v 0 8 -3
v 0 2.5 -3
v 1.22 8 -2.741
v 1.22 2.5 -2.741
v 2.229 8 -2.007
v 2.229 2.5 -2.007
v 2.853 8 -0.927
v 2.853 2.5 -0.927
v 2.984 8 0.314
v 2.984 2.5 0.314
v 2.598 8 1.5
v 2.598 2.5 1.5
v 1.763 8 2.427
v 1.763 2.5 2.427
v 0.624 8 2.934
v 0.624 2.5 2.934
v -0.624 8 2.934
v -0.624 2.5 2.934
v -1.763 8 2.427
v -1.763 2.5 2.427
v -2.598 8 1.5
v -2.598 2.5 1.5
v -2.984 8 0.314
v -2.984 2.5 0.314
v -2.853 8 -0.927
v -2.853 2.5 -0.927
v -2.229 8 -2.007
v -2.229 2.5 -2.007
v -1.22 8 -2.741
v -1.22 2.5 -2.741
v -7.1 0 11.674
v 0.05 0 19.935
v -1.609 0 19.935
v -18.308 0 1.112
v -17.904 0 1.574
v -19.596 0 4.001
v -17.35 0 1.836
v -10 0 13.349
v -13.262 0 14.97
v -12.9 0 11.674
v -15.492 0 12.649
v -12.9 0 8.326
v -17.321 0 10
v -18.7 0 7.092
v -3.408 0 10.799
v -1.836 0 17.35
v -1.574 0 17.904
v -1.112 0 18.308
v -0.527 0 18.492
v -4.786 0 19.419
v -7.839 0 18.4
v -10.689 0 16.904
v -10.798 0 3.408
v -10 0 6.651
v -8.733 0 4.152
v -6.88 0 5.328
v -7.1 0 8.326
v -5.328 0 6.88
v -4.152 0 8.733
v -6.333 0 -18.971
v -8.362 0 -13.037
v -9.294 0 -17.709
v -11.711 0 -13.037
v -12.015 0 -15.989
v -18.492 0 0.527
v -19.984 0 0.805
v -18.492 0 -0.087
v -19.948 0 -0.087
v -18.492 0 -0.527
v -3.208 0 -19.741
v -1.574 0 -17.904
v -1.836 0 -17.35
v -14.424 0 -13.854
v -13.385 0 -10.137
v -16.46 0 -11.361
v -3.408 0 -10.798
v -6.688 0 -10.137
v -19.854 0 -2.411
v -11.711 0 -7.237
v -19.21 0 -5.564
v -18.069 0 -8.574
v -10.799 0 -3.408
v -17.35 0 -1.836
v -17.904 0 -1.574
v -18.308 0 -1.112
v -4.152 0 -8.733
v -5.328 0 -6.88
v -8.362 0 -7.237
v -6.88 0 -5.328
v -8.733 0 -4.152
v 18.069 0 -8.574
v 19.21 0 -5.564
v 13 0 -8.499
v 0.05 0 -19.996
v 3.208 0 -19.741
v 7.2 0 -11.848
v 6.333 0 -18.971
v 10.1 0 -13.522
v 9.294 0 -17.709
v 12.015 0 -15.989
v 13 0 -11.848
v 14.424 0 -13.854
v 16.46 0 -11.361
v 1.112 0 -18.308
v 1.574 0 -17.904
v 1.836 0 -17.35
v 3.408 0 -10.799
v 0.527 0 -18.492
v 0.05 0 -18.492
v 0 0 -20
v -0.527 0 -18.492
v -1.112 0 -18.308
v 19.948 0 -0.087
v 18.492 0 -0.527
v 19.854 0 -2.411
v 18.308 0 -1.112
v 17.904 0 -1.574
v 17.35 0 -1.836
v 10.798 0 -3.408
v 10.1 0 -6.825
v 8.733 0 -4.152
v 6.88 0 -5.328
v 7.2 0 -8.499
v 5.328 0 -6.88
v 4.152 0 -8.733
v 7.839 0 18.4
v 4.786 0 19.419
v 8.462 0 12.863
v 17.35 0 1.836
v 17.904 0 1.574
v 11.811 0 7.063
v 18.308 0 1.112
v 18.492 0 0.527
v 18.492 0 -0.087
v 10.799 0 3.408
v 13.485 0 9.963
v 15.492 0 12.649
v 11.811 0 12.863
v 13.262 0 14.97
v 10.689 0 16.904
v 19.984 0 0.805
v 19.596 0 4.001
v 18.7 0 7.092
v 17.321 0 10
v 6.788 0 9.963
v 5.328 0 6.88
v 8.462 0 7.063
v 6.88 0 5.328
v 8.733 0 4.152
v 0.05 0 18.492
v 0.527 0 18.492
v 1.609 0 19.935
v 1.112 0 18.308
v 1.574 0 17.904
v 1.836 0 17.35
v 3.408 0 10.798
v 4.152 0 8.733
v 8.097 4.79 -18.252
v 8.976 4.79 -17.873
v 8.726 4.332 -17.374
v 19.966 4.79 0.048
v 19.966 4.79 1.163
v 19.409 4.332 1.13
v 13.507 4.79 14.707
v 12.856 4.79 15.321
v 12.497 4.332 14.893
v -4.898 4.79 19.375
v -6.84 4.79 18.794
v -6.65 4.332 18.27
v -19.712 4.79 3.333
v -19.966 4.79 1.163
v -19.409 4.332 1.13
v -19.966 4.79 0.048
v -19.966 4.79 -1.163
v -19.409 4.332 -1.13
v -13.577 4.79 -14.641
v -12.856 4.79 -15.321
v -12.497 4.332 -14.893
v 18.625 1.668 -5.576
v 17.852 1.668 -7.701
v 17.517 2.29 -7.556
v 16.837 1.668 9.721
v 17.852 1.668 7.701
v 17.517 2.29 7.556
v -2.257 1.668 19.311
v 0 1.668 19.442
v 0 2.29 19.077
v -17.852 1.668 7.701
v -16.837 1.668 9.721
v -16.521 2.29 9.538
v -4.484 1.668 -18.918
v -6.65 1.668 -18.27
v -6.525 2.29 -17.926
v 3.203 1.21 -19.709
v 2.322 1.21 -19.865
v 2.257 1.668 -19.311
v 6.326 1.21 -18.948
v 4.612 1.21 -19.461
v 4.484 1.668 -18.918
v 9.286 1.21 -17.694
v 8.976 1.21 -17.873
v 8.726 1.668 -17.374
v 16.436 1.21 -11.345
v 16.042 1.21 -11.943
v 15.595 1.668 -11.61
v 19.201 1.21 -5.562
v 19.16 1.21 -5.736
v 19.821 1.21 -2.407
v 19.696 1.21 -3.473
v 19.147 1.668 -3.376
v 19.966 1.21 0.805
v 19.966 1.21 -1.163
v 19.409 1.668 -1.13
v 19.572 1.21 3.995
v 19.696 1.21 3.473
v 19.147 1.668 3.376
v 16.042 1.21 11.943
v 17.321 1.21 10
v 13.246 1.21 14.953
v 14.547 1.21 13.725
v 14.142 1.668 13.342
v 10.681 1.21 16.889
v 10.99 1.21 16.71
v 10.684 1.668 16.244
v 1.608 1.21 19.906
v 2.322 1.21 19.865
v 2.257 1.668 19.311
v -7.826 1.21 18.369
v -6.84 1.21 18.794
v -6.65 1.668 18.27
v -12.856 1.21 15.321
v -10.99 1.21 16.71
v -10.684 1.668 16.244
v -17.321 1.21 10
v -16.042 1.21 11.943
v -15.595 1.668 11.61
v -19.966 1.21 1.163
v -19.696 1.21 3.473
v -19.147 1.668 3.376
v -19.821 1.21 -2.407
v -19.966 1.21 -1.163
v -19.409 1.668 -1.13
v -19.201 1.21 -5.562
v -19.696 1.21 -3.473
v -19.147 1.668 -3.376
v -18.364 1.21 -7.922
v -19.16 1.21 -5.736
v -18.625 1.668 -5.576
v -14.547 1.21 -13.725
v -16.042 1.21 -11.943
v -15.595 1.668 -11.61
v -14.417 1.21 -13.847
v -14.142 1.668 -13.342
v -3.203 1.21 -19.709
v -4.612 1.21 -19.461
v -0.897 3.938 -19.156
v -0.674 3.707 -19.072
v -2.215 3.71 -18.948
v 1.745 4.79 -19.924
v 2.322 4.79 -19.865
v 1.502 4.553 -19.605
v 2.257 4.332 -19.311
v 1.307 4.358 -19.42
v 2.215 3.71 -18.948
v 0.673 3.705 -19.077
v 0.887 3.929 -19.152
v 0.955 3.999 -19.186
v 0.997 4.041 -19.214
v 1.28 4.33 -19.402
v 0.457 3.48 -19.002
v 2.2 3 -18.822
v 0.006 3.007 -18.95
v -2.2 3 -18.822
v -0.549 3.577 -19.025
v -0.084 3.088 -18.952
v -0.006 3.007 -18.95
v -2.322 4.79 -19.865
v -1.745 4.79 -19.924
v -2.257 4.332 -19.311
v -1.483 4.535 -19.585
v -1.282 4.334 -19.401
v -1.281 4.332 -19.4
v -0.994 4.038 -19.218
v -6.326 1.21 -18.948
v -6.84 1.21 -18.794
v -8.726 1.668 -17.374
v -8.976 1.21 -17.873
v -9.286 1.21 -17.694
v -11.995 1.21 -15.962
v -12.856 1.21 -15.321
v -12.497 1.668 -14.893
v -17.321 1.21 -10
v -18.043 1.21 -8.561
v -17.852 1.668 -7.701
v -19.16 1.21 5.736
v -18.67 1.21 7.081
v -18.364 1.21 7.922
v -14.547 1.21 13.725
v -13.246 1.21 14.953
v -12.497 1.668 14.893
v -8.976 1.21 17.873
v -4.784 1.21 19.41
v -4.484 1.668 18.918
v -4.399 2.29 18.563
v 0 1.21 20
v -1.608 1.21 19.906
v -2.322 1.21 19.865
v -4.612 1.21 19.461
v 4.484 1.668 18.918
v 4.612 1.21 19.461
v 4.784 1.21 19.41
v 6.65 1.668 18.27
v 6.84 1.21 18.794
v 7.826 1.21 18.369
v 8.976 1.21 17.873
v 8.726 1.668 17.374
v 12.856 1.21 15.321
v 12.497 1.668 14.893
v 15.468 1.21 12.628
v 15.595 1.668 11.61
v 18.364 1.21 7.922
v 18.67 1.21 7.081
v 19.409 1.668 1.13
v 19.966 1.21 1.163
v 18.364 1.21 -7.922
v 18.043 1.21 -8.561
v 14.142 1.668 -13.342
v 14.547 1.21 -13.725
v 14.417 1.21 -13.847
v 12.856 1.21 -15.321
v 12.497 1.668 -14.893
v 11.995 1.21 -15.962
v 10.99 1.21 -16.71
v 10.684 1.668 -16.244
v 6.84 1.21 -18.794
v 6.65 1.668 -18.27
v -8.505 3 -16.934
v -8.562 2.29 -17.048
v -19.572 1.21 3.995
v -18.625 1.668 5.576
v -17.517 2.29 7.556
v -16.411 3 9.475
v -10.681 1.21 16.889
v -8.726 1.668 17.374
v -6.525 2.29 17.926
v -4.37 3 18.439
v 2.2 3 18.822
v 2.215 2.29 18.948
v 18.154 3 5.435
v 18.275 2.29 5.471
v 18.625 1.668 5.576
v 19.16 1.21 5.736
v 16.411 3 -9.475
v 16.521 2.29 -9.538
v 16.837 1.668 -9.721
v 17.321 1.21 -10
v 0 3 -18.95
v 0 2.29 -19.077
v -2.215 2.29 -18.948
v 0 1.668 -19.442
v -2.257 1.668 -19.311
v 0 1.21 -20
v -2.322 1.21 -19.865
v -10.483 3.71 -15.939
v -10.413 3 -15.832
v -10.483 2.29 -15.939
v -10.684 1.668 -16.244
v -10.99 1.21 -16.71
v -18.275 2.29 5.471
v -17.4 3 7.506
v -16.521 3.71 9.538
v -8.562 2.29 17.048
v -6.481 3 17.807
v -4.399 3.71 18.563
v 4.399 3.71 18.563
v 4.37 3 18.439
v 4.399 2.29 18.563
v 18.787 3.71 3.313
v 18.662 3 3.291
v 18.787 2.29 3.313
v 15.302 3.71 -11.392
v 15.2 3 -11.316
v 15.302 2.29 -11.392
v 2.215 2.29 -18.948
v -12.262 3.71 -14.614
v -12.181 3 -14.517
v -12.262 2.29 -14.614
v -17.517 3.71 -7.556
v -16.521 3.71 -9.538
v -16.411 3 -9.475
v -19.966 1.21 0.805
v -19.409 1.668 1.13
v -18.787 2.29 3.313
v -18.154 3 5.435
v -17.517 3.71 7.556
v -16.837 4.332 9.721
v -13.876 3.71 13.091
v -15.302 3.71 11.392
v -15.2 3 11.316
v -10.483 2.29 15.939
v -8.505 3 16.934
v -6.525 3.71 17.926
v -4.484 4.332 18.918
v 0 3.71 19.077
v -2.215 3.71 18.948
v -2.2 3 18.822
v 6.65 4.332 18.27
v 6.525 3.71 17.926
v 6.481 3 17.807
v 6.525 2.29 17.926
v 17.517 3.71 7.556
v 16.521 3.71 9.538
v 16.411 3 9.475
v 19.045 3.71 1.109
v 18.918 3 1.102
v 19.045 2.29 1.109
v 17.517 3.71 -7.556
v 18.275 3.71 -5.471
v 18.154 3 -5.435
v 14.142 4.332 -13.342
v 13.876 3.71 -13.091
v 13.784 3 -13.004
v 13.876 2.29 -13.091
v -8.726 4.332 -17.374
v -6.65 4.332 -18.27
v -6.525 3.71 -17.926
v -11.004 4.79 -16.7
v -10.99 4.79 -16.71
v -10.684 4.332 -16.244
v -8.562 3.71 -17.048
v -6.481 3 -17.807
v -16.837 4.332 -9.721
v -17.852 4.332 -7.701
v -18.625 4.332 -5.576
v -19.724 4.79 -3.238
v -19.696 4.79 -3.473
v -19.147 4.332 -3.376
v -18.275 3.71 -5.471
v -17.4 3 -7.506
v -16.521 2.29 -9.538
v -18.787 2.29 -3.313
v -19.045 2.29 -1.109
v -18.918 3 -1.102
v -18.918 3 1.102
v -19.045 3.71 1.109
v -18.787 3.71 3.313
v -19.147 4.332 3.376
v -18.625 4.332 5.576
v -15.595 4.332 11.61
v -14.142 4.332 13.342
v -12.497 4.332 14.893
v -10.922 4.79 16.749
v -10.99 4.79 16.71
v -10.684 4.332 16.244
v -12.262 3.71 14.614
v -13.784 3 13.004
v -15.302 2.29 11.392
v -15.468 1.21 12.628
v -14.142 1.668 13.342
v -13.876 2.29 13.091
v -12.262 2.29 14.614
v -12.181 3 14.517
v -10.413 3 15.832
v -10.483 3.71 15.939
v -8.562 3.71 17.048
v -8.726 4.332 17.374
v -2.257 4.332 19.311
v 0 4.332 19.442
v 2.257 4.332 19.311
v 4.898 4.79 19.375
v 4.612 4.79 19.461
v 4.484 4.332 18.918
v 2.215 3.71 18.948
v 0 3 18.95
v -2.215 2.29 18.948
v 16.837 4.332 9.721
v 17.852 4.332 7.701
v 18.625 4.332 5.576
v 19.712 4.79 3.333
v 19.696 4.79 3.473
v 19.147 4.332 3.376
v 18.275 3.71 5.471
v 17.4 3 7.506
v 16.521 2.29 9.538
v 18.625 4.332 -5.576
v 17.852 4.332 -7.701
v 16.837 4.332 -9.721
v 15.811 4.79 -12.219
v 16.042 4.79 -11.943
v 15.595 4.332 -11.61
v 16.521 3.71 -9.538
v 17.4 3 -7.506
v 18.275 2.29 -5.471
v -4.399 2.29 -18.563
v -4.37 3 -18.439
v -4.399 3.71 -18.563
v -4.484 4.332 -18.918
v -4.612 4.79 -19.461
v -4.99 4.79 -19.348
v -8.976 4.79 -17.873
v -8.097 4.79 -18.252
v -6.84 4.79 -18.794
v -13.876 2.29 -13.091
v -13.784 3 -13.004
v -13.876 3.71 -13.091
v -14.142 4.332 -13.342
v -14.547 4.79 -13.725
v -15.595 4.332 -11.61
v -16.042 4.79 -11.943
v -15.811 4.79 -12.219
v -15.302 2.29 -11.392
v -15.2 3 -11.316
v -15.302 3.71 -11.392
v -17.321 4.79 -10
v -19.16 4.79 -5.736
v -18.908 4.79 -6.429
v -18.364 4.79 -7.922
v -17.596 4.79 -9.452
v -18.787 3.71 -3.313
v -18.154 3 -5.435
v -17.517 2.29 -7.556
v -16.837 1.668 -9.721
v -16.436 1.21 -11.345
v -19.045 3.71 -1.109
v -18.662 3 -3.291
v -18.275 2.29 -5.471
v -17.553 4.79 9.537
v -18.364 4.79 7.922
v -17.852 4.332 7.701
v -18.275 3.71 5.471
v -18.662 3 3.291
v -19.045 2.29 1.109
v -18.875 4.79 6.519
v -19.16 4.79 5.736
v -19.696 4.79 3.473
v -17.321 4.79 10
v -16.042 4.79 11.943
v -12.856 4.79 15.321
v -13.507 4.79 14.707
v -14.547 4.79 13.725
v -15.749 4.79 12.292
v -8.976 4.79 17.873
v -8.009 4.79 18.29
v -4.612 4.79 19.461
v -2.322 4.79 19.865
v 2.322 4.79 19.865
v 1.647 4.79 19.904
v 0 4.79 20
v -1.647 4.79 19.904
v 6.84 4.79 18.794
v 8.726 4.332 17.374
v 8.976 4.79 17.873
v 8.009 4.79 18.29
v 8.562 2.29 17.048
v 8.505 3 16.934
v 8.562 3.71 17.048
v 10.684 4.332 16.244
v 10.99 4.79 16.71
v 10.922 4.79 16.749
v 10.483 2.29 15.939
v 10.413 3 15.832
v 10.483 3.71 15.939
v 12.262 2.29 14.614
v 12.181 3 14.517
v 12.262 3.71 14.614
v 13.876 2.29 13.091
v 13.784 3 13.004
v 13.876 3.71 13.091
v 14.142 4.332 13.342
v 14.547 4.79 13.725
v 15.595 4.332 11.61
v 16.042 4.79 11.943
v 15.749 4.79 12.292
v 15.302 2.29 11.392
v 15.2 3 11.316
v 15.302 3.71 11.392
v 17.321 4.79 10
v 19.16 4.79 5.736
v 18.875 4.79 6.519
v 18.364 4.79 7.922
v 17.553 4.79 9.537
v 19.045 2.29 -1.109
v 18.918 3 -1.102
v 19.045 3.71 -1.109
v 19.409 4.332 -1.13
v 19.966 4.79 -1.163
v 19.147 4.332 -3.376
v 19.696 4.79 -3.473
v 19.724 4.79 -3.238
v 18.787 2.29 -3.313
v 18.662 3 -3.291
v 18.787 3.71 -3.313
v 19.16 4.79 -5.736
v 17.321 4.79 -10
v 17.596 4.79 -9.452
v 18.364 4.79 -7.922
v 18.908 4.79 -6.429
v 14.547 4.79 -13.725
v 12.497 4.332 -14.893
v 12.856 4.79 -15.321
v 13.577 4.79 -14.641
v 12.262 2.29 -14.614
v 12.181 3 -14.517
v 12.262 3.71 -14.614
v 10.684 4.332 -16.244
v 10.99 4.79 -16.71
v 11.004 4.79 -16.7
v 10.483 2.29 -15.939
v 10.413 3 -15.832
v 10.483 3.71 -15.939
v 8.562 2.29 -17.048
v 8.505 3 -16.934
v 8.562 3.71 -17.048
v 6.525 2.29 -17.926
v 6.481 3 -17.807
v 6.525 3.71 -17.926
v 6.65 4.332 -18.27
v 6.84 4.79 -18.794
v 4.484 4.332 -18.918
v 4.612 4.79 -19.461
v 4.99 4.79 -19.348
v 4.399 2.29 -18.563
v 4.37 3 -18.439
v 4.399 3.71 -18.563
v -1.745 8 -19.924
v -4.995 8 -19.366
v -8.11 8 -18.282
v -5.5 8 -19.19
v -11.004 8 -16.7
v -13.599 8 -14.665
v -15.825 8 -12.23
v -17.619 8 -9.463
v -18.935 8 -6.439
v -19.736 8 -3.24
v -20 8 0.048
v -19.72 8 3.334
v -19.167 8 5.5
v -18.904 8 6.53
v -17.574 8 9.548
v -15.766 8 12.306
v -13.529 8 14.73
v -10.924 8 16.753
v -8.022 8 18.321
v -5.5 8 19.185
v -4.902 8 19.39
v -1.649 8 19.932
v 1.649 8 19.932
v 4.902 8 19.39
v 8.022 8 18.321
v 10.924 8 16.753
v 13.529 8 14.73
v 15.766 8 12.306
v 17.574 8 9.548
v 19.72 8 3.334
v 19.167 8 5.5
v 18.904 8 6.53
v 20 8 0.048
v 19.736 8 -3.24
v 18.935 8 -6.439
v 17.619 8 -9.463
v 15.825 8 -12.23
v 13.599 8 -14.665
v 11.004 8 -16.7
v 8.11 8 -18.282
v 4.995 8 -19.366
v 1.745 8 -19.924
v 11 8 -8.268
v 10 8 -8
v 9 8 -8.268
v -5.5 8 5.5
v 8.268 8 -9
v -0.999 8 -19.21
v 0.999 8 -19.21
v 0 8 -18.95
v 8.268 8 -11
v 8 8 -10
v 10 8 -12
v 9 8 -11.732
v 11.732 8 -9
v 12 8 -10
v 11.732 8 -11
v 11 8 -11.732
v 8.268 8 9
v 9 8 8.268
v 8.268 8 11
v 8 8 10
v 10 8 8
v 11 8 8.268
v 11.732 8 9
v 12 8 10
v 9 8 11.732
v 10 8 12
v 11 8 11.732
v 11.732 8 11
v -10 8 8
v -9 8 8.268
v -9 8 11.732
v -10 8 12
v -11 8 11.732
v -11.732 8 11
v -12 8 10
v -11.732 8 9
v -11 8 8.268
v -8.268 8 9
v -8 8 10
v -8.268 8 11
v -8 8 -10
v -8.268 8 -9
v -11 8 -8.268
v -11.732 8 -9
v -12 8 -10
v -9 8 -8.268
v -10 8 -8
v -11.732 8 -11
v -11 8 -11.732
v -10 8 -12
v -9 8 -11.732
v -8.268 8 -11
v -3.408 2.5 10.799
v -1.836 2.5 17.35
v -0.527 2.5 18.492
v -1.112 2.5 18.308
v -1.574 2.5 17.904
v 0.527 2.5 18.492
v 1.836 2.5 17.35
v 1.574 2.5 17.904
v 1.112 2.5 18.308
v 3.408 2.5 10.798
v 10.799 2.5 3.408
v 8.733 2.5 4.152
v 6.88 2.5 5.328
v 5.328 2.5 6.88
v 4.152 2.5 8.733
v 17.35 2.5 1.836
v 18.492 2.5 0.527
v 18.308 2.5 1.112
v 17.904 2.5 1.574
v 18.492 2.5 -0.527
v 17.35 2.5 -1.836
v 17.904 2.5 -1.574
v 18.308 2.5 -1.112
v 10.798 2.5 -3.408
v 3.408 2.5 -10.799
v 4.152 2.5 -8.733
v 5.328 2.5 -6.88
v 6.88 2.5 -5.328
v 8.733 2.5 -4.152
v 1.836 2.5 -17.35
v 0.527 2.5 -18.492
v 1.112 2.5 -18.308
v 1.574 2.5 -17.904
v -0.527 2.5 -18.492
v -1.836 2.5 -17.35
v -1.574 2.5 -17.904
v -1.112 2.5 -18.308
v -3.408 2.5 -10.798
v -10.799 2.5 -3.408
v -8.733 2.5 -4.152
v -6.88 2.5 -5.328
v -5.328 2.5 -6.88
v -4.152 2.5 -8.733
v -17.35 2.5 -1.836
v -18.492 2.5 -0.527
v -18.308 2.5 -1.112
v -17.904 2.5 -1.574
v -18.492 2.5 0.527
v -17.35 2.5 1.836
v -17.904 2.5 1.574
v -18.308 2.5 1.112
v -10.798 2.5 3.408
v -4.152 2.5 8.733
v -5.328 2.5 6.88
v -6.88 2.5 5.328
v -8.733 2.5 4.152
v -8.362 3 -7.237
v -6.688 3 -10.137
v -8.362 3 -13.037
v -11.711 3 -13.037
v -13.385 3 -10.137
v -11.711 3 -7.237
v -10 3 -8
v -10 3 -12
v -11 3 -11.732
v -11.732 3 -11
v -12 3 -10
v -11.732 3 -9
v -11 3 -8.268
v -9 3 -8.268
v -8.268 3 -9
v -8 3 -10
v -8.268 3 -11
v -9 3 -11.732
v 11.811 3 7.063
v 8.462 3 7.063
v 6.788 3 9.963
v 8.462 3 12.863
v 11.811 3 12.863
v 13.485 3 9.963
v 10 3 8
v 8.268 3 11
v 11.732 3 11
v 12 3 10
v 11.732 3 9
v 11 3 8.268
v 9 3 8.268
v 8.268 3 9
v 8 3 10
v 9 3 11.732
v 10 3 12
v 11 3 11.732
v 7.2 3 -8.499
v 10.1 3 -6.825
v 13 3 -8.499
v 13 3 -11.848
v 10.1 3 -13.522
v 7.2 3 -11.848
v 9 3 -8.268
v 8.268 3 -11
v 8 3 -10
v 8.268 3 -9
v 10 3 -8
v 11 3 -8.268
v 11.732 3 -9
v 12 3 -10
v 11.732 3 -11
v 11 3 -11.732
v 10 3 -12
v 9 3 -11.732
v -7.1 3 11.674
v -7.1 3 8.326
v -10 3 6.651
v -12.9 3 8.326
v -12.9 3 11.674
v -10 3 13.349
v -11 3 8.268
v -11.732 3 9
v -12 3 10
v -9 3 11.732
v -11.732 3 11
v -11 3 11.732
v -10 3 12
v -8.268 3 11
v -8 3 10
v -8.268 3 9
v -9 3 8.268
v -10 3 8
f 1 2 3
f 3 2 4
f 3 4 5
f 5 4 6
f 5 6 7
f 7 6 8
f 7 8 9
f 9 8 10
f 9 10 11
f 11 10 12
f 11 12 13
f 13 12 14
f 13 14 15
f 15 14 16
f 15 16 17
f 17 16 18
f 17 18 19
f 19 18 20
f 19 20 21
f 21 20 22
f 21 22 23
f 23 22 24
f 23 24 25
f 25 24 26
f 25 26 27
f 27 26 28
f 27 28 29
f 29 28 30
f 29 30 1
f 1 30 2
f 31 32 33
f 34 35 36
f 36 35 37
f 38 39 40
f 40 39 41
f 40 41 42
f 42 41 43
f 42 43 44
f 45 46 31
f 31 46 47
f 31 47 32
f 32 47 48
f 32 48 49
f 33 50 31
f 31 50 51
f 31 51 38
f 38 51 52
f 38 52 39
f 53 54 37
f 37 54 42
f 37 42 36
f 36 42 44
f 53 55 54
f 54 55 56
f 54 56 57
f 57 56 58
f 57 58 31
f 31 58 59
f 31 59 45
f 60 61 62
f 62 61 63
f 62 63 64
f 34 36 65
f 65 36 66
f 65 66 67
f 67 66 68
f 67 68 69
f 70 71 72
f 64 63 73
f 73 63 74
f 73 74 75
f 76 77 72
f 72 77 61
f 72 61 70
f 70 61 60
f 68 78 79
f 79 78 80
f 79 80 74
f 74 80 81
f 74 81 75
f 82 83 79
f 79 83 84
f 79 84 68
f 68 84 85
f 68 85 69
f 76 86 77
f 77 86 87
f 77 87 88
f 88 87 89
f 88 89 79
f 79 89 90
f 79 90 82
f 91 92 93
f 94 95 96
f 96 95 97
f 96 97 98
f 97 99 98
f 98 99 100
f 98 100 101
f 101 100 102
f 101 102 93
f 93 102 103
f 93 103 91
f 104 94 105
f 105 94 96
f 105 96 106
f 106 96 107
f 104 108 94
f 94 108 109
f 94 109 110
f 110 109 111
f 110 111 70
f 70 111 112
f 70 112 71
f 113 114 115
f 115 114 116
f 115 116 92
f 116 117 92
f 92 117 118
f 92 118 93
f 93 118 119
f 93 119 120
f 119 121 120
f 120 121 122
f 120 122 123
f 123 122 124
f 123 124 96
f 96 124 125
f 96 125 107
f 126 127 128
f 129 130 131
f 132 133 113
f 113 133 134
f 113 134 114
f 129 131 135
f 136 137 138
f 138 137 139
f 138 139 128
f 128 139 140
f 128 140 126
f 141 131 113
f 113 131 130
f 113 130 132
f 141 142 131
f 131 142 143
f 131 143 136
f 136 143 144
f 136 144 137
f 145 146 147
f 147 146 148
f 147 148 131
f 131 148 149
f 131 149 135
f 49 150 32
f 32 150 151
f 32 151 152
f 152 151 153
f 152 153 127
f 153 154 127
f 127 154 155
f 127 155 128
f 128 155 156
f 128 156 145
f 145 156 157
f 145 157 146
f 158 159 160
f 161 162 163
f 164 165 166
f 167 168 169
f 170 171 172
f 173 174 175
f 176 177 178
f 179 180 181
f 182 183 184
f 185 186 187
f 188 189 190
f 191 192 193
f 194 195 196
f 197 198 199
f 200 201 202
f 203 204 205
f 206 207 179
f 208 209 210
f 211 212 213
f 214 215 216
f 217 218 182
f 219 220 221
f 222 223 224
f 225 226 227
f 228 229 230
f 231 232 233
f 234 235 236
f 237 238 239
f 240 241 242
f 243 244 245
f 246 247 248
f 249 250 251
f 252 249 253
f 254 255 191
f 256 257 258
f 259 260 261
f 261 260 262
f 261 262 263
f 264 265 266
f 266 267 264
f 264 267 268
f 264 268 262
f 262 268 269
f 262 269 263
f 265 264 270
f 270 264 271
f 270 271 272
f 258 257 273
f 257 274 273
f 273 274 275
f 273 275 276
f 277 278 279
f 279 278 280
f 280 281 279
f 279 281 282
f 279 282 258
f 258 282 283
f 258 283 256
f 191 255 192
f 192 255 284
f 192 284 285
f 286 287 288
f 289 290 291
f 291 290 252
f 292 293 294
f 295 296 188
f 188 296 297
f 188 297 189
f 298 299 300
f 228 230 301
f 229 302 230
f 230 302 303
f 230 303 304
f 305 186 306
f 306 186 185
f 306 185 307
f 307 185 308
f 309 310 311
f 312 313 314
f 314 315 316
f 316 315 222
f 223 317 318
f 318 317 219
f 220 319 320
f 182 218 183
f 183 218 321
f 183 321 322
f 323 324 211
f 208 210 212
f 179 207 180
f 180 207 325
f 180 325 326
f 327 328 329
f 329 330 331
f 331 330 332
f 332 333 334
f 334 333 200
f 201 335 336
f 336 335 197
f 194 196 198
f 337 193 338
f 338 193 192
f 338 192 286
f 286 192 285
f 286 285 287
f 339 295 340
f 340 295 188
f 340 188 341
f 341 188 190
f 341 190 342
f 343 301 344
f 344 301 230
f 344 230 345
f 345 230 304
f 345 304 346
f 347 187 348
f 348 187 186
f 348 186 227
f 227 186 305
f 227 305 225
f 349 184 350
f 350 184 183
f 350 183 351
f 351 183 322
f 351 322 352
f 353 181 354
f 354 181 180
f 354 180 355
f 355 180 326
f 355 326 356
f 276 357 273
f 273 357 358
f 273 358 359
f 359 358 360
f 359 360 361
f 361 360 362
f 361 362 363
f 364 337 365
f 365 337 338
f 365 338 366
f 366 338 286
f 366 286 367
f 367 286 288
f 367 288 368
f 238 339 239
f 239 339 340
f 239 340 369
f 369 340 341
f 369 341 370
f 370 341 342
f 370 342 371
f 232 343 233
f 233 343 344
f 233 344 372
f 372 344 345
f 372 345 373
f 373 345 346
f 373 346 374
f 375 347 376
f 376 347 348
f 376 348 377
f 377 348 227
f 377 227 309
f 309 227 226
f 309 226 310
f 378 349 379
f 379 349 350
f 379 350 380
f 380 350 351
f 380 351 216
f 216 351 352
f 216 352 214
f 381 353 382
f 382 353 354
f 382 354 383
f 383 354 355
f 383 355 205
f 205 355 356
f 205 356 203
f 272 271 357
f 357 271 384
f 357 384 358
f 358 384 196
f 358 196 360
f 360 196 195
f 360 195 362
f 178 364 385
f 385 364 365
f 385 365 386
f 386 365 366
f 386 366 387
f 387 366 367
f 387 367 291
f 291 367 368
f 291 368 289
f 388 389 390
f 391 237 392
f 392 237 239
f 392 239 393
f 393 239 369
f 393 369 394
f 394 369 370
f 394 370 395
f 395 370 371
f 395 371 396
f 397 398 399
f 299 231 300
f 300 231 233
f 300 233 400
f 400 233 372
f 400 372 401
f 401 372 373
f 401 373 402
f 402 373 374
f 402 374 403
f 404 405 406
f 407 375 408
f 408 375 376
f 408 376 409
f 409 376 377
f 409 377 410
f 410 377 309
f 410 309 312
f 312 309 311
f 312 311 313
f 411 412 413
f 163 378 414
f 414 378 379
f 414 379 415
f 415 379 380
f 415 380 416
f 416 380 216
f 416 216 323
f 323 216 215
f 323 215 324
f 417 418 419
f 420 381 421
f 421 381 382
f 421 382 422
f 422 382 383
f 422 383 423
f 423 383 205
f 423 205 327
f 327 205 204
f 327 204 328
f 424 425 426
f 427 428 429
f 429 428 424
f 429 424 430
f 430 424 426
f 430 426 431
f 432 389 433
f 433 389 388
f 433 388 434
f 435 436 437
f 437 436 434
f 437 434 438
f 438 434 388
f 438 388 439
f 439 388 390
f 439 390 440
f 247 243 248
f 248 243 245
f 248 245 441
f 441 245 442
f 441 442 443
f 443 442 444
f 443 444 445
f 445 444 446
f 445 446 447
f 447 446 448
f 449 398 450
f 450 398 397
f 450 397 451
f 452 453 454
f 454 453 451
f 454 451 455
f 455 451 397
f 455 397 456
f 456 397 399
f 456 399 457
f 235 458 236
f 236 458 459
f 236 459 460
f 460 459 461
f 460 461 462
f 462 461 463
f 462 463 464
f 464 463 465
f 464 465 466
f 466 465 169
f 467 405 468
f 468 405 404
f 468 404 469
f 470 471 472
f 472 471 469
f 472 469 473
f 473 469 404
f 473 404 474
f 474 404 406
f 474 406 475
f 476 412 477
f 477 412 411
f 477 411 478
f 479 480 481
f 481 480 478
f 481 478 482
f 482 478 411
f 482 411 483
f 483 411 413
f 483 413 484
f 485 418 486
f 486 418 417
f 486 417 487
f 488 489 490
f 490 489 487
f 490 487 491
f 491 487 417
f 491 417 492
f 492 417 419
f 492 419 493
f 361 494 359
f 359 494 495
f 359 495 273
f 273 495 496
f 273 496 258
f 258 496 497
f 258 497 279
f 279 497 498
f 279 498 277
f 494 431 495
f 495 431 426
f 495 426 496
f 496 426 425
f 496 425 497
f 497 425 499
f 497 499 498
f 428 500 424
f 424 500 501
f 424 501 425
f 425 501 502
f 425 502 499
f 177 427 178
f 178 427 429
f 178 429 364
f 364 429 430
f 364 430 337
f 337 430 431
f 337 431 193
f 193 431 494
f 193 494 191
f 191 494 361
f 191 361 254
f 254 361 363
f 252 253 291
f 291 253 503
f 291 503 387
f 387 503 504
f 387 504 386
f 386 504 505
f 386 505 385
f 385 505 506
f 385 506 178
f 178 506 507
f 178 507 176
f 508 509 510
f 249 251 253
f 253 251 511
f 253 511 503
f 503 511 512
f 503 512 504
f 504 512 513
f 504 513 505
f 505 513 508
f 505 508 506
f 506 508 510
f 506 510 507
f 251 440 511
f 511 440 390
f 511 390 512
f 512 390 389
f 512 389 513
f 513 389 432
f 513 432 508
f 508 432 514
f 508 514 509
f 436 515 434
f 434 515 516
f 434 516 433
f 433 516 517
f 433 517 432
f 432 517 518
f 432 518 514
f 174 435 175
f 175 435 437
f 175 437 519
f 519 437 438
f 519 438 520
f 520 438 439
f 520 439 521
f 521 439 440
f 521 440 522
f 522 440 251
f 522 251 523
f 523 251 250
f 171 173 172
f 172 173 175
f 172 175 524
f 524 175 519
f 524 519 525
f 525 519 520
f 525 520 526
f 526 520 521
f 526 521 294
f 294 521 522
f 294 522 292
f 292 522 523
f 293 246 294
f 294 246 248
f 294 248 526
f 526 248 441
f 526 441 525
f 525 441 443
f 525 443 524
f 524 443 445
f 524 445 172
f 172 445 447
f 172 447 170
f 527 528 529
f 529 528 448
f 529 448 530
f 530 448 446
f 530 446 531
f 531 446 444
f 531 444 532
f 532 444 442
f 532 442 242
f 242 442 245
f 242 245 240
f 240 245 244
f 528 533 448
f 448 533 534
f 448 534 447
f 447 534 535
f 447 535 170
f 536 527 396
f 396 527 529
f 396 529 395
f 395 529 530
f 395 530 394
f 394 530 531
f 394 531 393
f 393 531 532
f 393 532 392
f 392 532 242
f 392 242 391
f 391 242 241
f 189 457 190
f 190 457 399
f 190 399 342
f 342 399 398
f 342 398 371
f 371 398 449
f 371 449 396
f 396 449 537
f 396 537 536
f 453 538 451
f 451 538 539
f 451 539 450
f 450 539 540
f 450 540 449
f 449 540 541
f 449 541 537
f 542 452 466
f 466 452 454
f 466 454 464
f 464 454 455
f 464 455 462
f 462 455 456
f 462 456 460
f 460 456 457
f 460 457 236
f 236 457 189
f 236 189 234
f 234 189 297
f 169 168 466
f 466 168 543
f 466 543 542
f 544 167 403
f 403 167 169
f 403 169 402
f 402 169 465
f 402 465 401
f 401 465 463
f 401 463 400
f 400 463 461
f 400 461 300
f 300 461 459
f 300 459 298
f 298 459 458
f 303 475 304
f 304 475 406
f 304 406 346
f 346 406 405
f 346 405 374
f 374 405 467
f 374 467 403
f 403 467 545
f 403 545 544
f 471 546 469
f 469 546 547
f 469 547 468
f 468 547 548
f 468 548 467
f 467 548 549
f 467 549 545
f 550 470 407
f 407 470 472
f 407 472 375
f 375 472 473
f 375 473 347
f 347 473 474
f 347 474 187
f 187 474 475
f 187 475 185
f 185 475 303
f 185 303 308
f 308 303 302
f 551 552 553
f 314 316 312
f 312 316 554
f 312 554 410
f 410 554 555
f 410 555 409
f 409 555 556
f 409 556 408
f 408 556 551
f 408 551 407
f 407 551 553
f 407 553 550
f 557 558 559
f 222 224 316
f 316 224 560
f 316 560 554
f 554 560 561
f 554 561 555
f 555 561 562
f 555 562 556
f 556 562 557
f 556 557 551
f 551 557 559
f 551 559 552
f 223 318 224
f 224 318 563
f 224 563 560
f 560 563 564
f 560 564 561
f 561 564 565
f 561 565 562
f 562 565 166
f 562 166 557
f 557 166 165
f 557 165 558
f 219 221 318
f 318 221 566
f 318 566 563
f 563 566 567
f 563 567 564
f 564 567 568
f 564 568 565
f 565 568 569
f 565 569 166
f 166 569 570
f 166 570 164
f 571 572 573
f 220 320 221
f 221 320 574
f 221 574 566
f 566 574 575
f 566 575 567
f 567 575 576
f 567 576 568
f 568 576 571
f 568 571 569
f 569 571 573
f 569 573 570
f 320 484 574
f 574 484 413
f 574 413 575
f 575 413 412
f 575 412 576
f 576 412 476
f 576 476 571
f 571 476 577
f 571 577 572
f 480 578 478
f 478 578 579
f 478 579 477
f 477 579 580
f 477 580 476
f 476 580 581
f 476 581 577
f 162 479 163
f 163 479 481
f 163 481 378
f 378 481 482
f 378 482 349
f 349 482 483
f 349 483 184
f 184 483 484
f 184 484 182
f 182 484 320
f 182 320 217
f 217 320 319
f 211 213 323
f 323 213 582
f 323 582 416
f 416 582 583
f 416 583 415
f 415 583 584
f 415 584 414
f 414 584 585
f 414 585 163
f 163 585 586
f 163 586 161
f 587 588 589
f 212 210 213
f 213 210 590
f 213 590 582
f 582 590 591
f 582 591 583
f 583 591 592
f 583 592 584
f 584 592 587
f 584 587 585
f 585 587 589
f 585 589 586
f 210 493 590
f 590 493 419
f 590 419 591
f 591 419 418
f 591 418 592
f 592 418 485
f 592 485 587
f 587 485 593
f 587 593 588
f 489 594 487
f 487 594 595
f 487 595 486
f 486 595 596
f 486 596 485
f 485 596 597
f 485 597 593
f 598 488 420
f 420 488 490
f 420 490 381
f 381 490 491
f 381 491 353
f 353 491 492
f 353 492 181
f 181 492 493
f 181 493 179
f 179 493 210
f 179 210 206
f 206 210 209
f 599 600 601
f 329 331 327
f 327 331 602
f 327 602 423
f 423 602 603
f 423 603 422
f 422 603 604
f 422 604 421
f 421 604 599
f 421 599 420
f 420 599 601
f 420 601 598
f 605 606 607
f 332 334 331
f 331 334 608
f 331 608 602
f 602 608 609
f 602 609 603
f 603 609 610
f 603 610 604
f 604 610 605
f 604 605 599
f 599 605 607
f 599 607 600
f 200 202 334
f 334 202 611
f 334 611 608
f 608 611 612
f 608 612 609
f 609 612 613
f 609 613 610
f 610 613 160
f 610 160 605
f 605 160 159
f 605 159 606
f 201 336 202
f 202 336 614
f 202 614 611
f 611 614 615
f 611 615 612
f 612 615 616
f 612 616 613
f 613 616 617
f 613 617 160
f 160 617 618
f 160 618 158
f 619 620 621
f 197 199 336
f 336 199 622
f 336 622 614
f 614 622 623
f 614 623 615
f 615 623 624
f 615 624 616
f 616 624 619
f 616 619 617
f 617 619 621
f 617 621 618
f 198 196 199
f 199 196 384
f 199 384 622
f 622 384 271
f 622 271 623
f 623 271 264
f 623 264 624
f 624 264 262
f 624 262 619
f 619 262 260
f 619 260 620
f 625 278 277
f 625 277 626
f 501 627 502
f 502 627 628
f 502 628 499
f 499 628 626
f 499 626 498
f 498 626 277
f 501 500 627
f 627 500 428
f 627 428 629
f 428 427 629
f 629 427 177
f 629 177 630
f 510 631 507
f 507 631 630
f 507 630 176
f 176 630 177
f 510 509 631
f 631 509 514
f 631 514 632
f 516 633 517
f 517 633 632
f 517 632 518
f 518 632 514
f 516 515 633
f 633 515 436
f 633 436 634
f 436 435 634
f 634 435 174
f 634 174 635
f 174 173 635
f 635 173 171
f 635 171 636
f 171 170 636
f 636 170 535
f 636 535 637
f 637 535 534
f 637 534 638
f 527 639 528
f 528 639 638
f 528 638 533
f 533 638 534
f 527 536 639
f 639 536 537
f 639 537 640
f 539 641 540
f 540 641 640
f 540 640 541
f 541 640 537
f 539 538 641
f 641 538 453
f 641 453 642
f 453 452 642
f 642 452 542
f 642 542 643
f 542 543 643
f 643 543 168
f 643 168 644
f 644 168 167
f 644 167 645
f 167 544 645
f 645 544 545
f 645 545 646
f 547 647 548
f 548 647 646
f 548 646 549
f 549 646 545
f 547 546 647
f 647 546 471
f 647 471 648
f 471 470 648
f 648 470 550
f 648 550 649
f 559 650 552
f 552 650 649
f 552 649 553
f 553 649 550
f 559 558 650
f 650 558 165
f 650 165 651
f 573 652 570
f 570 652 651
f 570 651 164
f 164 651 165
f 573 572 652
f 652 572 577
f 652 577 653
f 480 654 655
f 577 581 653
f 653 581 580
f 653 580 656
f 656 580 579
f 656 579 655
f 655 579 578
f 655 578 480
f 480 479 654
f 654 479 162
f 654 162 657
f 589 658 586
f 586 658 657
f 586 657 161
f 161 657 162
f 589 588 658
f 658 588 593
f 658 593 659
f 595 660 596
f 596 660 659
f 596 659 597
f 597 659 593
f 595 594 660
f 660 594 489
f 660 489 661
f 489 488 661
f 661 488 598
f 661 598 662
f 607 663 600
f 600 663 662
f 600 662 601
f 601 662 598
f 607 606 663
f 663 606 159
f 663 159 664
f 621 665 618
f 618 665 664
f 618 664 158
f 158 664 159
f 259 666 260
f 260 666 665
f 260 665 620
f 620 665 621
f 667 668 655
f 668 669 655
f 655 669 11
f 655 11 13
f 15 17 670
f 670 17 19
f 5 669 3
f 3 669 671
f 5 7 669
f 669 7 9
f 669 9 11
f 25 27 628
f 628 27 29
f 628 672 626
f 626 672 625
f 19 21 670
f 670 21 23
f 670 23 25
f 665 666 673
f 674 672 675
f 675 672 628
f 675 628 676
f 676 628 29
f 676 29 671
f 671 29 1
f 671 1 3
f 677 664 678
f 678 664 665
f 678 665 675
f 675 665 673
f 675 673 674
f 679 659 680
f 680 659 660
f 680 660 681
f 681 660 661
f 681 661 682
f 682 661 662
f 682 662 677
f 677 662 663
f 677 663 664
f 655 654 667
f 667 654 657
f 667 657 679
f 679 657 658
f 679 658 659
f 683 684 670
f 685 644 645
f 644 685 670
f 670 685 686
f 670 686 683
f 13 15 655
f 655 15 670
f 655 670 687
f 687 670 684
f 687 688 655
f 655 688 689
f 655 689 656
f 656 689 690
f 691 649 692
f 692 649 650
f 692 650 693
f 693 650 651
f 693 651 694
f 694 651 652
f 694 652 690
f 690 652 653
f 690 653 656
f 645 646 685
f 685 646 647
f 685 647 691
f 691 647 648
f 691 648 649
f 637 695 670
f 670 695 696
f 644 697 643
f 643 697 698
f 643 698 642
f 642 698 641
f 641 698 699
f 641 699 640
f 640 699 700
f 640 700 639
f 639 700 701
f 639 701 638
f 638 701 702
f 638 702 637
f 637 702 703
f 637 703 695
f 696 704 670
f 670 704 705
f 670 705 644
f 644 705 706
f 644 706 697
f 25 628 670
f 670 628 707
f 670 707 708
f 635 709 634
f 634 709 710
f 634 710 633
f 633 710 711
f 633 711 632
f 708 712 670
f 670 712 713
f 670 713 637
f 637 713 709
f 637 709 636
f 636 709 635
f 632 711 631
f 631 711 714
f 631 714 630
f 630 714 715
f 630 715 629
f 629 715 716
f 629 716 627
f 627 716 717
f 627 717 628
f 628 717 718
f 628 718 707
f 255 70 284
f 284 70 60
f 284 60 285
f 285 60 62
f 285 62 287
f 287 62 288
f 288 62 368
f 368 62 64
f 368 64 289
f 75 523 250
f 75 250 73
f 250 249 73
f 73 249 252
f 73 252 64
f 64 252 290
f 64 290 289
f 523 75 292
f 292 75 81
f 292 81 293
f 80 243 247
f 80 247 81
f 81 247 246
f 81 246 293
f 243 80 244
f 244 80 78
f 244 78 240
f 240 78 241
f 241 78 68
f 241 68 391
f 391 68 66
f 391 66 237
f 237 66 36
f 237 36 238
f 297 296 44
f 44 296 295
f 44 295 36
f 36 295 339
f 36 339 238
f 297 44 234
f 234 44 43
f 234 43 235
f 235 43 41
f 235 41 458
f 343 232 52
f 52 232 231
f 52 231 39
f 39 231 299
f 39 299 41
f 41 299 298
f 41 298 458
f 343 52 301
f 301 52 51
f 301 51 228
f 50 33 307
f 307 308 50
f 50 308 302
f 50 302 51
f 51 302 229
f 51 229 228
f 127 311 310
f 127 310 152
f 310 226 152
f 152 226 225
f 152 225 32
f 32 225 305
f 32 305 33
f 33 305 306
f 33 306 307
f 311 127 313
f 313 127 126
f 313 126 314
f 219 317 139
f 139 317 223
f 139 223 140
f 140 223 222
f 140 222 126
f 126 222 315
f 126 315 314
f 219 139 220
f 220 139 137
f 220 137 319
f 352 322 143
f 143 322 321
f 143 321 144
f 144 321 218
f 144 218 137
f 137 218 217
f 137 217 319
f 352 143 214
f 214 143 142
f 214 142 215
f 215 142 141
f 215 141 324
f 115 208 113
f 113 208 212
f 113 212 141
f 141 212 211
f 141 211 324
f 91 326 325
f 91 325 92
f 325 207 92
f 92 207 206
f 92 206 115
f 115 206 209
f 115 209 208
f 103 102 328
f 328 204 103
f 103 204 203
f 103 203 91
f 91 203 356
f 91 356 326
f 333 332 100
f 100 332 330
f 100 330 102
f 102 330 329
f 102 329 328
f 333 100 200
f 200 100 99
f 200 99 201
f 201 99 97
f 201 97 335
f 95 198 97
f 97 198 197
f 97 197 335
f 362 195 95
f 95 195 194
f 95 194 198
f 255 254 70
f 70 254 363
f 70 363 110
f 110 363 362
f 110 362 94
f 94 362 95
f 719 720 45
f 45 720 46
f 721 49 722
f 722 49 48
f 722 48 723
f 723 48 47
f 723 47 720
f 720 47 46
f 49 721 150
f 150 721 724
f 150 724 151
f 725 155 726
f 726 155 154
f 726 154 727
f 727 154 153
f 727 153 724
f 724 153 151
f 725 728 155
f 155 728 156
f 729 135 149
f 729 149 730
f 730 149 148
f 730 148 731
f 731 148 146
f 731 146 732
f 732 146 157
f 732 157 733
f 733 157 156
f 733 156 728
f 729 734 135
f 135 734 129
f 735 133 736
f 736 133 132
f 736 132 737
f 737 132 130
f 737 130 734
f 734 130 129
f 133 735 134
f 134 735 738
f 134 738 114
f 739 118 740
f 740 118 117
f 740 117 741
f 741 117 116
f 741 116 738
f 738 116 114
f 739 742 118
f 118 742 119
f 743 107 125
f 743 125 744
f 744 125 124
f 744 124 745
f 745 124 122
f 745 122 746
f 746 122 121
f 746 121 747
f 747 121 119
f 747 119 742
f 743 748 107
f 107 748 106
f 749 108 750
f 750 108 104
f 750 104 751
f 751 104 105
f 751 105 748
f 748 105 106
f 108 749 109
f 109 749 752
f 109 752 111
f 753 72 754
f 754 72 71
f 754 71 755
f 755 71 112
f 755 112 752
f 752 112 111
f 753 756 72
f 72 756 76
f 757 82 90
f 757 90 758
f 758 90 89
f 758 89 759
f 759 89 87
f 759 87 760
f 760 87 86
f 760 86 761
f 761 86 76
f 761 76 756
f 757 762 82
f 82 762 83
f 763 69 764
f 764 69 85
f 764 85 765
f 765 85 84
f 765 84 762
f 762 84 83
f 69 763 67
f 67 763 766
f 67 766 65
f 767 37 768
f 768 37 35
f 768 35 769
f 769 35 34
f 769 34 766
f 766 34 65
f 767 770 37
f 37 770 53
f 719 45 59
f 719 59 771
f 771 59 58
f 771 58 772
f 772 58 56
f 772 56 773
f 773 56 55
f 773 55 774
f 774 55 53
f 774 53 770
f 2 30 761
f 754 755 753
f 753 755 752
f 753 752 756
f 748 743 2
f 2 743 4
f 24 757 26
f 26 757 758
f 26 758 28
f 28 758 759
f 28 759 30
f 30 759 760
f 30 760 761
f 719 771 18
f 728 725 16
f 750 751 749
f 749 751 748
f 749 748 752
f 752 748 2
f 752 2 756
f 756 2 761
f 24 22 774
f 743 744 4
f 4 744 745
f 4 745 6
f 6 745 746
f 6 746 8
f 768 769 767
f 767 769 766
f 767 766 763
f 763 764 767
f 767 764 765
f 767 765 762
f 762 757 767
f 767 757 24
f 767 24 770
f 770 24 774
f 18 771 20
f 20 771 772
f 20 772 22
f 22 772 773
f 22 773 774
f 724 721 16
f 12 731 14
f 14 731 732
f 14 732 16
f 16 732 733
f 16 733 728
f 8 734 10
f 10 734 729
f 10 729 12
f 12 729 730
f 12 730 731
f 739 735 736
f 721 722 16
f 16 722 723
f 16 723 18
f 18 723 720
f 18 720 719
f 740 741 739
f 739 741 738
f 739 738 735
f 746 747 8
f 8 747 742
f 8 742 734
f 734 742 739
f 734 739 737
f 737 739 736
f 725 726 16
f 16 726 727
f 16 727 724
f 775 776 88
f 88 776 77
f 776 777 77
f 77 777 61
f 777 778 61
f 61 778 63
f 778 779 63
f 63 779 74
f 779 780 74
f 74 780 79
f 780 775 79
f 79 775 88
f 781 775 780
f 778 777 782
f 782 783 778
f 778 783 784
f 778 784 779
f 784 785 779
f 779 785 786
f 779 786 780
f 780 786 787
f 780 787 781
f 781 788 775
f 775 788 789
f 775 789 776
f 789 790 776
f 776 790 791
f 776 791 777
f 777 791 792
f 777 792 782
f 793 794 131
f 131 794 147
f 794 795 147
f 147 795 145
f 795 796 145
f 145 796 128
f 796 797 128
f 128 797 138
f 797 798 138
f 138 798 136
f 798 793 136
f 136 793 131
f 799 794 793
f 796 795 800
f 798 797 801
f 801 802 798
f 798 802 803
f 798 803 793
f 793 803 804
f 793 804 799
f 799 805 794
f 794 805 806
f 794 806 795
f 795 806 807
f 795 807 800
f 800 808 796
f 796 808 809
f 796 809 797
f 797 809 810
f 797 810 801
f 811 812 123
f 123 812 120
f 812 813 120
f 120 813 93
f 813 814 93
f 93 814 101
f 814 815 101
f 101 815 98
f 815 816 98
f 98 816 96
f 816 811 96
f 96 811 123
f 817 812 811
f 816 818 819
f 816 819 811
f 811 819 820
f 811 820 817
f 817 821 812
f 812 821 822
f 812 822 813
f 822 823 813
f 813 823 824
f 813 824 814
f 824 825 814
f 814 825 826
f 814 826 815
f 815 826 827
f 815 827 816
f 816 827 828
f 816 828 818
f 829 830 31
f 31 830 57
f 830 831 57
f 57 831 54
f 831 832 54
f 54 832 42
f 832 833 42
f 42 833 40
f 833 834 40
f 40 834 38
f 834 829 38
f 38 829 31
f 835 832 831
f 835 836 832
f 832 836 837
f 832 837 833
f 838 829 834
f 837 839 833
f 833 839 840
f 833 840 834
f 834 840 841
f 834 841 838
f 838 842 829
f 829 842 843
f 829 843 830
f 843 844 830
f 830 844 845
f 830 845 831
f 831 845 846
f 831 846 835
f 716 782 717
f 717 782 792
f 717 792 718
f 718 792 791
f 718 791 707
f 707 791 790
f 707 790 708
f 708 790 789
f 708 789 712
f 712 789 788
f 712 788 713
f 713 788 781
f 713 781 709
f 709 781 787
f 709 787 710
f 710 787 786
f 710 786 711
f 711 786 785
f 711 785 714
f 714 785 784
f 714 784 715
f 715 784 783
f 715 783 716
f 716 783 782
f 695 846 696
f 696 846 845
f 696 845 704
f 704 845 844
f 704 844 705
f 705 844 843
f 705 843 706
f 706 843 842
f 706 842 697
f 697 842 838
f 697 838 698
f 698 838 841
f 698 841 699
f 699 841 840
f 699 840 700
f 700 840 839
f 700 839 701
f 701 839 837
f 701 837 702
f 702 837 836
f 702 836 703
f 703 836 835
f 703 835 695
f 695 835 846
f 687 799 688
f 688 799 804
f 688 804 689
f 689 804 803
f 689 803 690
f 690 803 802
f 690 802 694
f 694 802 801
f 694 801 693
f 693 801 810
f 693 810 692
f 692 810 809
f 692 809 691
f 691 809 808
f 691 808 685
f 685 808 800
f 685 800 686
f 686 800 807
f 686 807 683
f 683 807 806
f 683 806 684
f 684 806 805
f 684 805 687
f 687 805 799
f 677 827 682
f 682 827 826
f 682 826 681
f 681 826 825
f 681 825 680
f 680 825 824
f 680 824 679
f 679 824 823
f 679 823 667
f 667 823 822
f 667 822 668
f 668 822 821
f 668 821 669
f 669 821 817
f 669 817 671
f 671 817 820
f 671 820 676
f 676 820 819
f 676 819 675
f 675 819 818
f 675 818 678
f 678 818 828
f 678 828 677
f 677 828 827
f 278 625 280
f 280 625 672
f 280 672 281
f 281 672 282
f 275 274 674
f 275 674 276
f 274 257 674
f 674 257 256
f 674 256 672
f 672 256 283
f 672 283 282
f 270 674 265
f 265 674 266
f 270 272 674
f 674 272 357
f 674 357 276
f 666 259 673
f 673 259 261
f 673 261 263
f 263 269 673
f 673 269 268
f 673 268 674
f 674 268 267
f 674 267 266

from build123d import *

# Parameters (mm, degrees)
CUT_EXTRUDE_1_DEPTH = 2.5
CUT_EXTRUDE_2_DEPTH = 3
CUT_EXTRUDE_4_DEPTH = 29.722813233
SKETCH_8_R          = 2.05
CUT_EXTRUDE_6_DEPTH = 5


with BuildPart() as part:
    # 草图2 → 旋转1 (revolve)
    with BuildSketch(Plane.XY, mode=Mode.PRIVATE) as revolve_1_sk:
        with BuildLine():
            Line((3, 8), (3, 0))
            Line((3, 0), (20, 0))
            Line((20, 0), (20, 1.210446983))
            ThreePointArc((20, 1.210446983), (18.95, 3), (20, 4.789553017))
            Line((20, 4.789553017), (20, 8))
            Line((20, 8), (3, 8))
        make_face()
    revolve(revolve_1_sk.sketch.rotate(Axis((0, 0, 0), (0, 1, 0)), 90), axis=Axis((0, 0, 0), (0, 1, 0)))

    # 草图3 → 切除-拉伸1 (cut)
    with BuildSketch(Plane.XZ):
        with BuildLine():
            Line((1.835992055, -17.350058041), (3.408354199, -10.798521635))
            ThreePointArc((3.408354199, -10.798521635), (6.061153739, -6.061181984), (10.798487471, -3.408371874))
            Line((10.798487471, -3.408371874), (17.350061912, -1.835985141))
            ThreePointArc((17.350061912, -1.835985141), (18.129967792, -1.363900547), (18.492480347, -0.527418811))
            Line((18.492480347, -0.527418811), (18.492480347, 0.527418811))
            ThreePointArc((18.492480347, 0.527418811), (18.129968102, 1.363905618), (17.350058041, 1.835992055))
            Line((17.350058041, 1.835992055), (10.798521635, 3.408354199))
            ThreePointArc((10.798521635, 3.408354199), (6.061181984, 6.061153739), (3.408371874, 10.798487471))
            Line((3.408371874, 10.798487471), (1.835985141, 17.350061912))
            ThreePointArc((1.835985141, 17.350061912), (1.363900547, 18.129967792), (0.527418811, 18.492480347))
            Line((0.527418811, 18.492480347), (-0.527418811, 18.492480347))
            ThreePointArc((-0.527418811, 18.492480347), (-1.363905618, 18.129968102), (-1.835992055, 17.350058041))
            Line((-1.835992055, 17.350058041), (-3.408354199, 10.798521635))
            ThreePointArc((-3.408354199, 10.798521635), (-6.061153739, 6.061181984), (-10.798487471, 3.408371874))
            Line((-10.798487471, 3.408371874), (-17.350061912, 1.835985141))
            ThreePointArc((-17.350061912, 1.835985141), (-18.129967792, 1.363900547), (-18.492480347, 0.527418811))
            Line((-18.492480347, 0.527418811), (-18.492480347, -0.527418811))
            ThreePointArc((-18.492480347, -0.527418811), (-18.129968102, -1.363905618), (-17.350058041, -1.835992055))
            Line((-17.350058041, -1.835992055), (-10.798521635, -3.408354199))
            ThreePointArc((-10.798521635, -3.408354199), (-6.061181984, -6.061153739), (-3.408371874, -10.798487471))
            Line((-3.408371874, -10.798487471), (-1.835985141, -17.350061912))
            ThreePointArc((-1.835985141, -17.350061912), (-1.363900547, -18.129967792), (-0.527418811, -18.492480347))
            Line((-0.527418811, -18.492480347), (0.527418811, -18.492480347))
            ThreePointArc((0.527418811, -18.492480347), (1.363905618, -18.129968102), (1.835992055, -17.350058041))
        make_face()
    extrude(amount=-CUT_EXTRUDE_1_DEPTH, mode=Mode.SUBTRACT)

    # 草图4 → 切除-拉伸2 (cut)
    with BuildSketch(Plane.XZ):
        Polygon((13.485234102, 9.96339746), (11.810918321, 12.86339746), (8.46228676, 12.86339746), (6.787970979, 9.96339746), (8.46228676, 7.06339746), (11.810918321, 7.06339746), align=None)
        Polygon((-10, 13.348631561), (-12.9, 11.674315781), (-12.9, 8.325684219), (-10, 6.651368439), (-7.1, 8.325684219), (-7.1, 11.674315781), align=None)
        Polygon((10.1, -13.521836642), (13, -11.847520861), (13, -8.4988893), (10.1, -6.824573519), (7.2, -8.4988893), (7.2, -11.847520861), align=None)
        Polygon((-13.385234102, -10.13660254), (-11.710918321, -13.03660254), (-8.36228676, -13.03660254), (-6.687970979, -10.13660254), (-8.36228676, -7.23660254), (-11.710918321, -7.23660254), align=None)
    extrude(amount=-CUT_EXTRUDE_2_DEPTH, mode=Mode.SUBTRACT)

    # 草图6 → 切除-拉伸4 (cut, through all)
    with BuildSketch(Plane.XZ.offset(-3)):
        with BuildLine():
            Line((-10, -8), (-10, -10))
            Line((-10, -10), (-8, -10))
            ThreePointArc((-8, -10), (-8.585786438, -8.585786438), (-10, -8))
        make_face()
        with BuildLine():
            Line((-8, -10), (-10, -10))
            Line((-10, -10), (-10, -8))
            ThreePointArc((-10, -8), (-11.414213562, -11.414213562), (-8, -10))
        make_face()
        with BuildLine():
            ThreePointArc((-8, 10), (-11.414213562, 11.414213562), (-10, 8))
            Line((-10, 8), (-10, 10))
            Line((-10, 10), (-8, 10))
        make_face()
        with BuildLine():
            Line((-10, 10), (-10, 8))
            ThreePointArc((-10, 8), (-8.585786438, 8.585786438), (-8, 10))
            Line((-8, 10), (-10, 10))
        make_face()
        with BuildLine():
            ThreePointArc((8, 10), (8.585786438, 8.585786438), (10, 8))
            Line((10, 8), (10, 10))
            Line((10, 10), (8, 10))
        make_face()
        with BuildLine():
            Line((10, 10), (10, 8))
            ThreePointArc((10, 8), (11.414213562, 8.585786438), (12, 10))
            ThreePointArc((12, 10), (10, 12), (8, 10))
            Line((8, 10), (10, 10))
        make_face()
        with BuildLine():
            ThreePointArc((10, -8), (8.585786438, -8.585786438), (8, -10))
            Line((8, -10), (10, -10))
            Line((10, -10), (10, -8))
        make_face()
        with BuildLine():
            Line((10, -10), (8, -10))
            ThreePointArc((8, -10), (10, -12), (12, -10))
            ThreePointArc((12, -10), (11.414213562, -8.585786438), (10, -8))
            Line((10, -8), (10, -10))
        make_face()
    extrude(amount=-CUT_EXTRUDE_4_DEPTH, mode=Mode.SUBTRACT)

    # 草图8 → 切除-拉伸6 (cut)
    with BuildSketch(Plane(origin=(0, 8, 0), x_dir=(1, 0, 0), z_dir=(0, 1, 0))):
        with Locations((0, 21)):
            Circle(SKETCH_8_R)
    extrude(amount=-CUT_EXTRUDE_6_DEPTH, mode=Mode.SUBTRACT)


solid = part.part
